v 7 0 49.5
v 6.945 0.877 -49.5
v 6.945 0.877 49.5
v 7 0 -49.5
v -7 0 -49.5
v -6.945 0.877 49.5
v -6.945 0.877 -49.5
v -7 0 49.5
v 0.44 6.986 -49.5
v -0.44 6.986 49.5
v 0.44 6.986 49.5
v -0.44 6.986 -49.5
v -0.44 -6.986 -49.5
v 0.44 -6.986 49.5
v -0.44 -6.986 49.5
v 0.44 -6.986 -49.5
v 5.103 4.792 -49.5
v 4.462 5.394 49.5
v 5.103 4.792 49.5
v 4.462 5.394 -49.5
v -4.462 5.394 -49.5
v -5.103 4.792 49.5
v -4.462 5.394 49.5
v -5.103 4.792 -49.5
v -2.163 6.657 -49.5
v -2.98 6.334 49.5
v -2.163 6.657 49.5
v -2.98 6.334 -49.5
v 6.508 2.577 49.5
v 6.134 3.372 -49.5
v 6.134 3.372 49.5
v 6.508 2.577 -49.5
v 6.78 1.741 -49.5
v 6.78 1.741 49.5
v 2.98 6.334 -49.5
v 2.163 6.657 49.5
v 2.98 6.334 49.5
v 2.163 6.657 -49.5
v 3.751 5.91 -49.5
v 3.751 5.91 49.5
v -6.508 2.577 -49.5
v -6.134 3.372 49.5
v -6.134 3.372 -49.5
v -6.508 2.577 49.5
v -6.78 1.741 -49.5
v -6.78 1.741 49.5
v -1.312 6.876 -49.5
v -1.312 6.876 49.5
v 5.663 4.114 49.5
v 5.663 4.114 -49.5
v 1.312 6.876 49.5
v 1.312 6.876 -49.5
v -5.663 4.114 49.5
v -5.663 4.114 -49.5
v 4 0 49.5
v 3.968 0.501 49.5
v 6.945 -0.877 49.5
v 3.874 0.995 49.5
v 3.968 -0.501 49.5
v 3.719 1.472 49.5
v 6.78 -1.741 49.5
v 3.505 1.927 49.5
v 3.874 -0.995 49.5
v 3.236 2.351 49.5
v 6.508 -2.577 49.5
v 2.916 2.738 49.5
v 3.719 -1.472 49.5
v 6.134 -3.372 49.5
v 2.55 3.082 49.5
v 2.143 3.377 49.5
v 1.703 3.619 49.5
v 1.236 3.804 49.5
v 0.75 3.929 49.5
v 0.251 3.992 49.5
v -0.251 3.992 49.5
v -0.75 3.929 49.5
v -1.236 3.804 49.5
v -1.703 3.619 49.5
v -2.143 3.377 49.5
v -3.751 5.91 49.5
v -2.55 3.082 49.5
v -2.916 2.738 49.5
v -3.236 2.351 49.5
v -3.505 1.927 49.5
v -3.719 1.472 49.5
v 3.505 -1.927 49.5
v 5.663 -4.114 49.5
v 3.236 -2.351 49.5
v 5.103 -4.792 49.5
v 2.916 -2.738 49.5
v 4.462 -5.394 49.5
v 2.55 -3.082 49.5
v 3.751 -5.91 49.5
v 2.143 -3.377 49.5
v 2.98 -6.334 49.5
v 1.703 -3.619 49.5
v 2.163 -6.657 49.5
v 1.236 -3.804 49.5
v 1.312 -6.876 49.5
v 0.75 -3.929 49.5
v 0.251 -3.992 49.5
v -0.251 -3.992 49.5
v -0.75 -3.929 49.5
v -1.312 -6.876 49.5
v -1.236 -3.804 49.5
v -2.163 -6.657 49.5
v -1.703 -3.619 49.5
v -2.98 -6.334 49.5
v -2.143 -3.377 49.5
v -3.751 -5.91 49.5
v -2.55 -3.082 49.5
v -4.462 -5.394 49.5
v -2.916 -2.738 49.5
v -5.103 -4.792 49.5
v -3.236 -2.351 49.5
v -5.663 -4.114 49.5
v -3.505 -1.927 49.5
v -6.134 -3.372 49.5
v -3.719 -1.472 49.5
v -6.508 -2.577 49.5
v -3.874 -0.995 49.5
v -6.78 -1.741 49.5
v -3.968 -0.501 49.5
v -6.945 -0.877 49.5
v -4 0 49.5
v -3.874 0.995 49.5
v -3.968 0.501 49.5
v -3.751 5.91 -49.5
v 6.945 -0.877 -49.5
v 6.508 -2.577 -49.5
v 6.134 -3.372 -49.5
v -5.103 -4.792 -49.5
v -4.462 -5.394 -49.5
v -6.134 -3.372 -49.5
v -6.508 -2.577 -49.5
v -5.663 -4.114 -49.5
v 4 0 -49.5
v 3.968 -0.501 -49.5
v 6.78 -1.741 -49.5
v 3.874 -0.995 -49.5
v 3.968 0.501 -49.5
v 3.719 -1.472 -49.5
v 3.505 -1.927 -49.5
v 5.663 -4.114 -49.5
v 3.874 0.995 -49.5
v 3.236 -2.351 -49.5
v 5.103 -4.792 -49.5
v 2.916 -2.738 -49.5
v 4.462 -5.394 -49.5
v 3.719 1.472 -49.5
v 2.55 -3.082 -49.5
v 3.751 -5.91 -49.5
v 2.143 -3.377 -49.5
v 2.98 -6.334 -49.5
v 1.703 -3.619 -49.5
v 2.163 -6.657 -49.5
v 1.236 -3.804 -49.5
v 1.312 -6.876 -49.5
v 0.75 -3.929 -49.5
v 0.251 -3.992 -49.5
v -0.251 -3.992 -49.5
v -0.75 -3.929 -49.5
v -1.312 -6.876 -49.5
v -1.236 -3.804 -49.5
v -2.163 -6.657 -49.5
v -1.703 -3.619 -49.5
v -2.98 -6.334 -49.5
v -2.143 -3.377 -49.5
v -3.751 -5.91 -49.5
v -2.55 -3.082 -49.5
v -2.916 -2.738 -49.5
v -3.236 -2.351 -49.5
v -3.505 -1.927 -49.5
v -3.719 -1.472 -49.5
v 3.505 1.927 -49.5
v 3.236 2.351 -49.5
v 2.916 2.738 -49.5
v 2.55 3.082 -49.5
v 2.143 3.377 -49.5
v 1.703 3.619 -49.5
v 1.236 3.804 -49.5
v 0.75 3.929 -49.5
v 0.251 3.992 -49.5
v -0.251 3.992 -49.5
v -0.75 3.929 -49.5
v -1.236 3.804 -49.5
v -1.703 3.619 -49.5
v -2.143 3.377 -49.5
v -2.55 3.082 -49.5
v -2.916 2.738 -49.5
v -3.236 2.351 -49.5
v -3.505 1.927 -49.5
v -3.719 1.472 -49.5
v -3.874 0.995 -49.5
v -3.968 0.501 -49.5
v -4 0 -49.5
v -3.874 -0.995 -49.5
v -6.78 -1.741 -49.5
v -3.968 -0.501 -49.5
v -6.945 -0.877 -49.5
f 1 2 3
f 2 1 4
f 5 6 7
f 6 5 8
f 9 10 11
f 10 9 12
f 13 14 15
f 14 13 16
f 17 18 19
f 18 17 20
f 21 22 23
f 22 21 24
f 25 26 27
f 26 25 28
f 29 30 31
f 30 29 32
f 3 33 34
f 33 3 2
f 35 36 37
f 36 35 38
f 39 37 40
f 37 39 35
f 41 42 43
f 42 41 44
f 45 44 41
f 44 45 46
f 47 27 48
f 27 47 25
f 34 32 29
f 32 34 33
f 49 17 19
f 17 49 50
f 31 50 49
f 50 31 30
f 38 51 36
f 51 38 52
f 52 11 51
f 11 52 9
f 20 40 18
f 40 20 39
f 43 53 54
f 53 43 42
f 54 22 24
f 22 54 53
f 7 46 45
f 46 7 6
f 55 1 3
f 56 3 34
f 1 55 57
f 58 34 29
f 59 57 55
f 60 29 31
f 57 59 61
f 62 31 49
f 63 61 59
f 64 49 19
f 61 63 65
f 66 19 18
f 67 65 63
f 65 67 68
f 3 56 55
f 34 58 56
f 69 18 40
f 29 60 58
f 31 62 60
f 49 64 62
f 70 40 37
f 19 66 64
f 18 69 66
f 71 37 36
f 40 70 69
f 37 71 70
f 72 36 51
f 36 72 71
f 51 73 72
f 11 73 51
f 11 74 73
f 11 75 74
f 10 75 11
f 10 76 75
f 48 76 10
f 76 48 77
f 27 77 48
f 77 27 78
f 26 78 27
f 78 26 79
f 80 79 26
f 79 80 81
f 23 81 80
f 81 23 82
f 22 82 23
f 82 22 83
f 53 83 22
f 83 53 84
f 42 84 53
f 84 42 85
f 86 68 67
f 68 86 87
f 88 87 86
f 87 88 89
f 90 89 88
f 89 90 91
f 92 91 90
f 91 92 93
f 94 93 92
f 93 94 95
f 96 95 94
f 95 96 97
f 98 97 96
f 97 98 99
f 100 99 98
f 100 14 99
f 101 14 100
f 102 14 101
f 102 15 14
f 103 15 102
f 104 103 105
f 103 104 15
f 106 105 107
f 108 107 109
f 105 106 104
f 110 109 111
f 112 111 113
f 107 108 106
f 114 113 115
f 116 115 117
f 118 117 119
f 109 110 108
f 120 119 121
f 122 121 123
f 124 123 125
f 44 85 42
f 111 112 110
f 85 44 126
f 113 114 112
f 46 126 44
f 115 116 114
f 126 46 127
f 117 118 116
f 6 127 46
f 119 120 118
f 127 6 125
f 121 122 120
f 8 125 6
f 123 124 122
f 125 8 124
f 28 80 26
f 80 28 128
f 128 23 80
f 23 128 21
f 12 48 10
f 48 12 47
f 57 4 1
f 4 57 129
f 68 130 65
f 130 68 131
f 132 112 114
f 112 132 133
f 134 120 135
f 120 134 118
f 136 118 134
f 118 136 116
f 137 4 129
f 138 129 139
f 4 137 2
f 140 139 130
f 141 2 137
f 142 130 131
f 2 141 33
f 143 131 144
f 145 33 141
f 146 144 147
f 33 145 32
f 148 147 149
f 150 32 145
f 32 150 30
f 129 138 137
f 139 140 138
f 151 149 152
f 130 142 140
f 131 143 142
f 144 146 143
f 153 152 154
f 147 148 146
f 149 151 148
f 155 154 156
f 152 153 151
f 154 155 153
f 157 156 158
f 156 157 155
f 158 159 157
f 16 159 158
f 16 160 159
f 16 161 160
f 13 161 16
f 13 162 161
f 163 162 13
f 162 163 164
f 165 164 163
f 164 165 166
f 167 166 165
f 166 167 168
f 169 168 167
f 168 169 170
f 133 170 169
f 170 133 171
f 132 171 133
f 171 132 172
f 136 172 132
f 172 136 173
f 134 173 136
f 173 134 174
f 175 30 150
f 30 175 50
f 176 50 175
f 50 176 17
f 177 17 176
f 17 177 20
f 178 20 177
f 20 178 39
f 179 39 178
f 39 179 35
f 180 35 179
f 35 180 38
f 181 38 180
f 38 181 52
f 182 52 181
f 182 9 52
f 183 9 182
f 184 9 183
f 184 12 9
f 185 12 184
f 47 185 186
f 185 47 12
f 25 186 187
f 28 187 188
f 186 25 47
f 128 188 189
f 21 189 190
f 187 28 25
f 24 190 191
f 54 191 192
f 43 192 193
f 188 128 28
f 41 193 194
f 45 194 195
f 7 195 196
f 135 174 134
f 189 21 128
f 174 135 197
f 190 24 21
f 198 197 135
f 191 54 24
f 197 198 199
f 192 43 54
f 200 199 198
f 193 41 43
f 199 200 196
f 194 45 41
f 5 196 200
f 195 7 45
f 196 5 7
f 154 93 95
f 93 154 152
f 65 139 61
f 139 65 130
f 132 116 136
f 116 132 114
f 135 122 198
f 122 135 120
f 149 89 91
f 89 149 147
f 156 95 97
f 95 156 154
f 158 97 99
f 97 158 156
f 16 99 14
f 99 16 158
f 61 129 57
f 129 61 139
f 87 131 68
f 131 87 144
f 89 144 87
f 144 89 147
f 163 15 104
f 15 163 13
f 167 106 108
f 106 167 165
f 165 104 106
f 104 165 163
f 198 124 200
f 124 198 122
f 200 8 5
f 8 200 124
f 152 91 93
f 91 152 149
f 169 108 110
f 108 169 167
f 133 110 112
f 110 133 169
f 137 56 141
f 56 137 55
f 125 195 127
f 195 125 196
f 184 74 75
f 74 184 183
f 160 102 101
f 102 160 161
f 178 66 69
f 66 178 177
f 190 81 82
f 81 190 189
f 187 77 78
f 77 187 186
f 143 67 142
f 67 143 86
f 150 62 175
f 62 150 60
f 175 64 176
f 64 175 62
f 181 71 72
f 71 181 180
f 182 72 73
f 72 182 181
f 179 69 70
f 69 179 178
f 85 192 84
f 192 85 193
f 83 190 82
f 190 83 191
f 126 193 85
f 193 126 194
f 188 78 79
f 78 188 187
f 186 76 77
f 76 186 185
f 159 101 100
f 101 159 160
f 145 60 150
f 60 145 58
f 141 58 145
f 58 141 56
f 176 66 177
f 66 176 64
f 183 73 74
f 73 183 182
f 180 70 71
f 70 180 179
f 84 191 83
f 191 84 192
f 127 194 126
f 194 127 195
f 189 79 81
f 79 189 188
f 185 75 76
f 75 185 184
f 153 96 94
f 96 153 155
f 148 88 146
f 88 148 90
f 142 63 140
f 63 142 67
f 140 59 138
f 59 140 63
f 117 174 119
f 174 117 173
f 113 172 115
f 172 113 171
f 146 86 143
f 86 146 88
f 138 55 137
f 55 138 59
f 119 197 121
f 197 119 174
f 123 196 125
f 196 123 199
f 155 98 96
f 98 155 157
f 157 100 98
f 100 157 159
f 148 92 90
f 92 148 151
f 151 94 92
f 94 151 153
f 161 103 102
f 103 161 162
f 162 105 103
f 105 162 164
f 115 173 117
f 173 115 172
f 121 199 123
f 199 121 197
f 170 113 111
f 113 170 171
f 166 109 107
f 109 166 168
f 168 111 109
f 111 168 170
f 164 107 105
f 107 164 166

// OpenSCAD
$fn = 50;


difference() {
	union() {
		translate(v = [0, 0, -49.5000000000]) {
			cylinder(h = 99, r = 7.0000000000);
		}
	}
	union() {
		translate(v = [0, 0, -100.0000000000]) {
			cylinder(h = 200, r = 4);
		}
	}
}
